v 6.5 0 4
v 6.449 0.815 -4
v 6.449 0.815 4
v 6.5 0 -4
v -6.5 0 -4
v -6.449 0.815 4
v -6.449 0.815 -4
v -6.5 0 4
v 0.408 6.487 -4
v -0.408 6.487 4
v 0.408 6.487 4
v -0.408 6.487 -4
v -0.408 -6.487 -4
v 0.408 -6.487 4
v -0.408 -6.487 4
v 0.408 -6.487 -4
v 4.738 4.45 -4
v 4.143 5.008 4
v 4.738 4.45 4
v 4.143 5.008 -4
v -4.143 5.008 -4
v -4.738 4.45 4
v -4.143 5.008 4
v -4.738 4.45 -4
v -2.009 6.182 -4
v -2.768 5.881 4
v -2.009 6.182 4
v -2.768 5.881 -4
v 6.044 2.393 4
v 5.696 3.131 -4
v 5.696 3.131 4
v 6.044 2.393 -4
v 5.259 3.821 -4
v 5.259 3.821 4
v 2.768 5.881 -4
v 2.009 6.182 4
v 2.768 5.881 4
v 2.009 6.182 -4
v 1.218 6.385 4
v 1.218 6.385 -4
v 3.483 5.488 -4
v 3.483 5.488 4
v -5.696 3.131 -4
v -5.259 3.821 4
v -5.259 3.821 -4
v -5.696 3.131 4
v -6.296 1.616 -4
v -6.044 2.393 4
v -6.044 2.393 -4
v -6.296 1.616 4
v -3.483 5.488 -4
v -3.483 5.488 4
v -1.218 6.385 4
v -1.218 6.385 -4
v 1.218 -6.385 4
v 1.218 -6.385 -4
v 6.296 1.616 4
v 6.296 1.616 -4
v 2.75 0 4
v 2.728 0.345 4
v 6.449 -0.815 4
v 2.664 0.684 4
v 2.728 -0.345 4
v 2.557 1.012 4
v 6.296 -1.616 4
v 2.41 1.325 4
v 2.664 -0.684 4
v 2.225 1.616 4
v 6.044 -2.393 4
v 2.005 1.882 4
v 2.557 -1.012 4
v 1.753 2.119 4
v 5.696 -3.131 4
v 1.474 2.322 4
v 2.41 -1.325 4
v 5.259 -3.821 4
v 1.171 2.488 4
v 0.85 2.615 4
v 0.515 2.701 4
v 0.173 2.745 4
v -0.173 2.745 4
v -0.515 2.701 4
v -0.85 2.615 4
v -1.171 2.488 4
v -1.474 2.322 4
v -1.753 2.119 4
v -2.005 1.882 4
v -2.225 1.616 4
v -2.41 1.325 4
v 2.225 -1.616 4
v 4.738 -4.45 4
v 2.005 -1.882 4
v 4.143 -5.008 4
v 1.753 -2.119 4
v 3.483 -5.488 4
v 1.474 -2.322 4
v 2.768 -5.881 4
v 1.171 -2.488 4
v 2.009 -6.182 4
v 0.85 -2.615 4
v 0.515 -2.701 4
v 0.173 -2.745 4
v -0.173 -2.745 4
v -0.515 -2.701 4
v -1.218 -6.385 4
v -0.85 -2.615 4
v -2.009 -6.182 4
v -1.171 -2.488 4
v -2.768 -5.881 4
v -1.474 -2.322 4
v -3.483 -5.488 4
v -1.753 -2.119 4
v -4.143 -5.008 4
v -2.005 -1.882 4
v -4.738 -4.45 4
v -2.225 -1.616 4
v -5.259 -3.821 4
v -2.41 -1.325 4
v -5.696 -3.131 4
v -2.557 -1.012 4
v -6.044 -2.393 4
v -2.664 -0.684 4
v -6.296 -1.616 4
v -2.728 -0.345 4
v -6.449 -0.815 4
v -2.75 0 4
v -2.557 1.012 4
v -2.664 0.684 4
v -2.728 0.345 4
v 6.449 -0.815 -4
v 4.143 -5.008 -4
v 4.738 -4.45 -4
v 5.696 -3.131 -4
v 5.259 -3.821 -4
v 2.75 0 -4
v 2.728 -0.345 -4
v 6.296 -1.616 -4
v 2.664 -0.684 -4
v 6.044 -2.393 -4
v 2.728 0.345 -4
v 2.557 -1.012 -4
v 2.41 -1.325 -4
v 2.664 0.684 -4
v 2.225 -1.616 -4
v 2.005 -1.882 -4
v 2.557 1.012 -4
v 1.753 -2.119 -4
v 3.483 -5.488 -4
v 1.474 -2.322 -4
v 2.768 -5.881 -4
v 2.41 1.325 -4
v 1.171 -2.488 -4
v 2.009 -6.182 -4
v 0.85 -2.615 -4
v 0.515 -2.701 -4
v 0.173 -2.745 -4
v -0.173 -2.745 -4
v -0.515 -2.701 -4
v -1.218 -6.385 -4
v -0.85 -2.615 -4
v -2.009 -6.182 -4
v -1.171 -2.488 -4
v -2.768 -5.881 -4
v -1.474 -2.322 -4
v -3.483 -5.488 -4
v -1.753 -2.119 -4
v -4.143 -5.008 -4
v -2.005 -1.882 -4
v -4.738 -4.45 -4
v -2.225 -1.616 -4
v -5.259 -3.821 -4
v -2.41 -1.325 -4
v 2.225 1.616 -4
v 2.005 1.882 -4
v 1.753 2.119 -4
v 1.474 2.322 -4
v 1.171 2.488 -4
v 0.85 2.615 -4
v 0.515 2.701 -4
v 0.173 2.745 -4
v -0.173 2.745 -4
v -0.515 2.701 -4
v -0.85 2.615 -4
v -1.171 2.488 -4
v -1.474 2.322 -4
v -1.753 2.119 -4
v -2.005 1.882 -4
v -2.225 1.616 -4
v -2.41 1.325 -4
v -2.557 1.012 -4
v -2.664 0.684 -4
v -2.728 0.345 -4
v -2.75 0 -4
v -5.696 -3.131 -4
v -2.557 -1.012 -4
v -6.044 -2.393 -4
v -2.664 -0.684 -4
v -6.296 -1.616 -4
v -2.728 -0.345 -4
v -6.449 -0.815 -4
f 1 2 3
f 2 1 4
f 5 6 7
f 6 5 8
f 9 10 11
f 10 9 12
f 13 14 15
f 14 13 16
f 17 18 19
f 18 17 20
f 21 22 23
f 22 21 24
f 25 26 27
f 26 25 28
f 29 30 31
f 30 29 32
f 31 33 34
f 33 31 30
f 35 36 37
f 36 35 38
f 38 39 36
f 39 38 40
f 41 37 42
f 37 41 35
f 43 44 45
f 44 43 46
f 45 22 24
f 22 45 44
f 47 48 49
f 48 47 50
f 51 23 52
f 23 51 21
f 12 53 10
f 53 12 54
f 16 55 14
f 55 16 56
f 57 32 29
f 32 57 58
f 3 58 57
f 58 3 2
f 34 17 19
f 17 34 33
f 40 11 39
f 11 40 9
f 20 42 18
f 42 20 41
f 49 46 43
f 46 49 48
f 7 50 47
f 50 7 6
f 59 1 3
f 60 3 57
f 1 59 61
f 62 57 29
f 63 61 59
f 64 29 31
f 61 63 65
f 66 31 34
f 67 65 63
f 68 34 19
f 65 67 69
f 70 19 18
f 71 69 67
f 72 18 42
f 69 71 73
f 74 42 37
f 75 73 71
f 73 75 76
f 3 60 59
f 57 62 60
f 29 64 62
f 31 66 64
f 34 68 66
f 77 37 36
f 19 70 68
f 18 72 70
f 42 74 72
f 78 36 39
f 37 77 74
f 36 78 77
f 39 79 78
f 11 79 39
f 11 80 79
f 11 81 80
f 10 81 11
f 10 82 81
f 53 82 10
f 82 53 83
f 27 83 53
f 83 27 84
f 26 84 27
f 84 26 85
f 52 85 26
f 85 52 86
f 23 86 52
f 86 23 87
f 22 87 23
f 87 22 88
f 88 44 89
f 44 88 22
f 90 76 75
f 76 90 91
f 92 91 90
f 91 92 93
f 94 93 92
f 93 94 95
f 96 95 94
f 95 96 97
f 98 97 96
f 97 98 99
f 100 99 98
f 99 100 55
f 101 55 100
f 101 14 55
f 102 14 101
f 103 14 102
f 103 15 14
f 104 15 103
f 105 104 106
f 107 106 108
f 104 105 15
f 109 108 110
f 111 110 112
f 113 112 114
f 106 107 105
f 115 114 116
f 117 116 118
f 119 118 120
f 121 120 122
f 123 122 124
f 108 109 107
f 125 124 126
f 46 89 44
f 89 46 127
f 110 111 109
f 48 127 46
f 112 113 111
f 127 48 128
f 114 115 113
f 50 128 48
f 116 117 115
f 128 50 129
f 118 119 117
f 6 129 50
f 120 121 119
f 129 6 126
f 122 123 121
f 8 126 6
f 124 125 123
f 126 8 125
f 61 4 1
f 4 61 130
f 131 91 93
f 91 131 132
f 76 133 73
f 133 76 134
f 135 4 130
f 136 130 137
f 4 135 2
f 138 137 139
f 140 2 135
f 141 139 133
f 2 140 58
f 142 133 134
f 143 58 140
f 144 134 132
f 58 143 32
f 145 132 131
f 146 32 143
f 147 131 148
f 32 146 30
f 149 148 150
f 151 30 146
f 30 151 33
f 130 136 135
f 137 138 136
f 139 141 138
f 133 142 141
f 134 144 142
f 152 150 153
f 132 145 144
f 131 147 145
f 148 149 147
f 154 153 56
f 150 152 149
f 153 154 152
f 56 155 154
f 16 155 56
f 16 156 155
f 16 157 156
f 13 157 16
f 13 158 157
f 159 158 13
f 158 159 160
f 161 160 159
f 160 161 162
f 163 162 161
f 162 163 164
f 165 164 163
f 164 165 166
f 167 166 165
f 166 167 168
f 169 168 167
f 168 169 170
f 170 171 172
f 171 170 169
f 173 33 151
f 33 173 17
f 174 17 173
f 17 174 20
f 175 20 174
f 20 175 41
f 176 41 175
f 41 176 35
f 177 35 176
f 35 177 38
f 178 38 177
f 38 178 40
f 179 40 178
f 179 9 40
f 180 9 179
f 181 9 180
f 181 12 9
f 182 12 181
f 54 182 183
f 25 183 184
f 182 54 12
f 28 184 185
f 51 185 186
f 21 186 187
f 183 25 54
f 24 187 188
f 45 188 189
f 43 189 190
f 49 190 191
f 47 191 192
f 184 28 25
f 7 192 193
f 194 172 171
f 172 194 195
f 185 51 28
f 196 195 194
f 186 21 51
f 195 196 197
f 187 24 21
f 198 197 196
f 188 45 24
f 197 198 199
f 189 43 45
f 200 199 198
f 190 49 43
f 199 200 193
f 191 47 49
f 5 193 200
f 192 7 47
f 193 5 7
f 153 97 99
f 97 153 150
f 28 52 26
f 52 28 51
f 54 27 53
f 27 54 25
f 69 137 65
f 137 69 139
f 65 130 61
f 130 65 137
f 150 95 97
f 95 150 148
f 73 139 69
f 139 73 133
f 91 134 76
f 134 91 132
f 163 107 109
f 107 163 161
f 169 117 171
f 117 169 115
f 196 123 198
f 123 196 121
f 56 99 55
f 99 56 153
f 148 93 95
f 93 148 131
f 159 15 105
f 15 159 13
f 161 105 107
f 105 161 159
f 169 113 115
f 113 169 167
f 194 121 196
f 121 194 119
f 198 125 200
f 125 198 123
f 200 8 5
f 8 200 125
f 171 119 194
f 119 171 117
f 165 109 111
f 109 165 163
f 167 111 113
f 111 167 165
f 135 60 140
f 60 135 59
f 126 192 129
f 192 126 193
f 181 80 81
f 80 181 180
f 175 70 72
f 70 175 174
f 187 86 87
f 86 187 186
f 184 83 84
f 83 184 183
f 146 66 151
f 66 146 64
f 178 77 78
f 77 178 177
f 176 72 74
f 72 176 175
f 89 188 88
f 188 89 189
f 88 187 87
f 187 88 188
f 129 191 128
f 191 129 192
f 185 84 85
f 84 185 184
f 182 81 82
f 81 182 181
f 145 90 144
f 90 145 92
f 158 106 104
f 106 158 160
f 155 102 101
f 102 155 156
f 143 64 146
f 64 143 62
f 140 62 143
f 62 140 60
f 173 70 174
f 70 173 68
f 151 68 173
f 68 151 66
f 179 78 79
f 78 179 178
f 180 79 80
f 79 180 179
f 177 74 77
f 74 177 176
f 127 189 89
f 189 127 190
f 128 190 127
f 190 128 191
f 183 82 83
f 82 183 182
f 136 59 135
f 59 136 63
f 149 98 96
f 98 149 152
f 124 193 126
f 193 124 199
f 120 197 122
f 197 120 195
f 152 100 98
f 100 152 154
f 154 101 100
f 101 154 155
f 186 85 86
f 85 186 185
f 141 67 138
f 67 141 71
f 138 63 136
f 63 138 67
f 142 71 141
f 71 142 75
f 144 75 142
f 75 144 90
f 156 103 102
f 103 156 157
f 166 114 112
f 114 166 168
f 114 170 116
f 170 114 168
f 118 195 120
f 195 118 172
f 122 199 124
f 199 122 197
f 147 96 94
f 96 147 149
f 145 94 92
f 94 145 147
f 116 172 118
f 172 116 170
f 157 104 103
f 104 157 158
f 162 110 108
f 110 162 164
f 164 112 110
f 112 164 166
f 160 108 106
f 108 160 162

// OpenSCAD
$fn = 50;


difference() {
	union() {
		translate(v = [0, 0, -4.0000000000]) {
			cylinder(h = 8, r = 6.5000000000);
		}
	}
	union() {
		translate(v = [0, 0, -100.0000000000]) {
			cylinder(h = 200, r = 2.7500000000);
		}
	}
}
